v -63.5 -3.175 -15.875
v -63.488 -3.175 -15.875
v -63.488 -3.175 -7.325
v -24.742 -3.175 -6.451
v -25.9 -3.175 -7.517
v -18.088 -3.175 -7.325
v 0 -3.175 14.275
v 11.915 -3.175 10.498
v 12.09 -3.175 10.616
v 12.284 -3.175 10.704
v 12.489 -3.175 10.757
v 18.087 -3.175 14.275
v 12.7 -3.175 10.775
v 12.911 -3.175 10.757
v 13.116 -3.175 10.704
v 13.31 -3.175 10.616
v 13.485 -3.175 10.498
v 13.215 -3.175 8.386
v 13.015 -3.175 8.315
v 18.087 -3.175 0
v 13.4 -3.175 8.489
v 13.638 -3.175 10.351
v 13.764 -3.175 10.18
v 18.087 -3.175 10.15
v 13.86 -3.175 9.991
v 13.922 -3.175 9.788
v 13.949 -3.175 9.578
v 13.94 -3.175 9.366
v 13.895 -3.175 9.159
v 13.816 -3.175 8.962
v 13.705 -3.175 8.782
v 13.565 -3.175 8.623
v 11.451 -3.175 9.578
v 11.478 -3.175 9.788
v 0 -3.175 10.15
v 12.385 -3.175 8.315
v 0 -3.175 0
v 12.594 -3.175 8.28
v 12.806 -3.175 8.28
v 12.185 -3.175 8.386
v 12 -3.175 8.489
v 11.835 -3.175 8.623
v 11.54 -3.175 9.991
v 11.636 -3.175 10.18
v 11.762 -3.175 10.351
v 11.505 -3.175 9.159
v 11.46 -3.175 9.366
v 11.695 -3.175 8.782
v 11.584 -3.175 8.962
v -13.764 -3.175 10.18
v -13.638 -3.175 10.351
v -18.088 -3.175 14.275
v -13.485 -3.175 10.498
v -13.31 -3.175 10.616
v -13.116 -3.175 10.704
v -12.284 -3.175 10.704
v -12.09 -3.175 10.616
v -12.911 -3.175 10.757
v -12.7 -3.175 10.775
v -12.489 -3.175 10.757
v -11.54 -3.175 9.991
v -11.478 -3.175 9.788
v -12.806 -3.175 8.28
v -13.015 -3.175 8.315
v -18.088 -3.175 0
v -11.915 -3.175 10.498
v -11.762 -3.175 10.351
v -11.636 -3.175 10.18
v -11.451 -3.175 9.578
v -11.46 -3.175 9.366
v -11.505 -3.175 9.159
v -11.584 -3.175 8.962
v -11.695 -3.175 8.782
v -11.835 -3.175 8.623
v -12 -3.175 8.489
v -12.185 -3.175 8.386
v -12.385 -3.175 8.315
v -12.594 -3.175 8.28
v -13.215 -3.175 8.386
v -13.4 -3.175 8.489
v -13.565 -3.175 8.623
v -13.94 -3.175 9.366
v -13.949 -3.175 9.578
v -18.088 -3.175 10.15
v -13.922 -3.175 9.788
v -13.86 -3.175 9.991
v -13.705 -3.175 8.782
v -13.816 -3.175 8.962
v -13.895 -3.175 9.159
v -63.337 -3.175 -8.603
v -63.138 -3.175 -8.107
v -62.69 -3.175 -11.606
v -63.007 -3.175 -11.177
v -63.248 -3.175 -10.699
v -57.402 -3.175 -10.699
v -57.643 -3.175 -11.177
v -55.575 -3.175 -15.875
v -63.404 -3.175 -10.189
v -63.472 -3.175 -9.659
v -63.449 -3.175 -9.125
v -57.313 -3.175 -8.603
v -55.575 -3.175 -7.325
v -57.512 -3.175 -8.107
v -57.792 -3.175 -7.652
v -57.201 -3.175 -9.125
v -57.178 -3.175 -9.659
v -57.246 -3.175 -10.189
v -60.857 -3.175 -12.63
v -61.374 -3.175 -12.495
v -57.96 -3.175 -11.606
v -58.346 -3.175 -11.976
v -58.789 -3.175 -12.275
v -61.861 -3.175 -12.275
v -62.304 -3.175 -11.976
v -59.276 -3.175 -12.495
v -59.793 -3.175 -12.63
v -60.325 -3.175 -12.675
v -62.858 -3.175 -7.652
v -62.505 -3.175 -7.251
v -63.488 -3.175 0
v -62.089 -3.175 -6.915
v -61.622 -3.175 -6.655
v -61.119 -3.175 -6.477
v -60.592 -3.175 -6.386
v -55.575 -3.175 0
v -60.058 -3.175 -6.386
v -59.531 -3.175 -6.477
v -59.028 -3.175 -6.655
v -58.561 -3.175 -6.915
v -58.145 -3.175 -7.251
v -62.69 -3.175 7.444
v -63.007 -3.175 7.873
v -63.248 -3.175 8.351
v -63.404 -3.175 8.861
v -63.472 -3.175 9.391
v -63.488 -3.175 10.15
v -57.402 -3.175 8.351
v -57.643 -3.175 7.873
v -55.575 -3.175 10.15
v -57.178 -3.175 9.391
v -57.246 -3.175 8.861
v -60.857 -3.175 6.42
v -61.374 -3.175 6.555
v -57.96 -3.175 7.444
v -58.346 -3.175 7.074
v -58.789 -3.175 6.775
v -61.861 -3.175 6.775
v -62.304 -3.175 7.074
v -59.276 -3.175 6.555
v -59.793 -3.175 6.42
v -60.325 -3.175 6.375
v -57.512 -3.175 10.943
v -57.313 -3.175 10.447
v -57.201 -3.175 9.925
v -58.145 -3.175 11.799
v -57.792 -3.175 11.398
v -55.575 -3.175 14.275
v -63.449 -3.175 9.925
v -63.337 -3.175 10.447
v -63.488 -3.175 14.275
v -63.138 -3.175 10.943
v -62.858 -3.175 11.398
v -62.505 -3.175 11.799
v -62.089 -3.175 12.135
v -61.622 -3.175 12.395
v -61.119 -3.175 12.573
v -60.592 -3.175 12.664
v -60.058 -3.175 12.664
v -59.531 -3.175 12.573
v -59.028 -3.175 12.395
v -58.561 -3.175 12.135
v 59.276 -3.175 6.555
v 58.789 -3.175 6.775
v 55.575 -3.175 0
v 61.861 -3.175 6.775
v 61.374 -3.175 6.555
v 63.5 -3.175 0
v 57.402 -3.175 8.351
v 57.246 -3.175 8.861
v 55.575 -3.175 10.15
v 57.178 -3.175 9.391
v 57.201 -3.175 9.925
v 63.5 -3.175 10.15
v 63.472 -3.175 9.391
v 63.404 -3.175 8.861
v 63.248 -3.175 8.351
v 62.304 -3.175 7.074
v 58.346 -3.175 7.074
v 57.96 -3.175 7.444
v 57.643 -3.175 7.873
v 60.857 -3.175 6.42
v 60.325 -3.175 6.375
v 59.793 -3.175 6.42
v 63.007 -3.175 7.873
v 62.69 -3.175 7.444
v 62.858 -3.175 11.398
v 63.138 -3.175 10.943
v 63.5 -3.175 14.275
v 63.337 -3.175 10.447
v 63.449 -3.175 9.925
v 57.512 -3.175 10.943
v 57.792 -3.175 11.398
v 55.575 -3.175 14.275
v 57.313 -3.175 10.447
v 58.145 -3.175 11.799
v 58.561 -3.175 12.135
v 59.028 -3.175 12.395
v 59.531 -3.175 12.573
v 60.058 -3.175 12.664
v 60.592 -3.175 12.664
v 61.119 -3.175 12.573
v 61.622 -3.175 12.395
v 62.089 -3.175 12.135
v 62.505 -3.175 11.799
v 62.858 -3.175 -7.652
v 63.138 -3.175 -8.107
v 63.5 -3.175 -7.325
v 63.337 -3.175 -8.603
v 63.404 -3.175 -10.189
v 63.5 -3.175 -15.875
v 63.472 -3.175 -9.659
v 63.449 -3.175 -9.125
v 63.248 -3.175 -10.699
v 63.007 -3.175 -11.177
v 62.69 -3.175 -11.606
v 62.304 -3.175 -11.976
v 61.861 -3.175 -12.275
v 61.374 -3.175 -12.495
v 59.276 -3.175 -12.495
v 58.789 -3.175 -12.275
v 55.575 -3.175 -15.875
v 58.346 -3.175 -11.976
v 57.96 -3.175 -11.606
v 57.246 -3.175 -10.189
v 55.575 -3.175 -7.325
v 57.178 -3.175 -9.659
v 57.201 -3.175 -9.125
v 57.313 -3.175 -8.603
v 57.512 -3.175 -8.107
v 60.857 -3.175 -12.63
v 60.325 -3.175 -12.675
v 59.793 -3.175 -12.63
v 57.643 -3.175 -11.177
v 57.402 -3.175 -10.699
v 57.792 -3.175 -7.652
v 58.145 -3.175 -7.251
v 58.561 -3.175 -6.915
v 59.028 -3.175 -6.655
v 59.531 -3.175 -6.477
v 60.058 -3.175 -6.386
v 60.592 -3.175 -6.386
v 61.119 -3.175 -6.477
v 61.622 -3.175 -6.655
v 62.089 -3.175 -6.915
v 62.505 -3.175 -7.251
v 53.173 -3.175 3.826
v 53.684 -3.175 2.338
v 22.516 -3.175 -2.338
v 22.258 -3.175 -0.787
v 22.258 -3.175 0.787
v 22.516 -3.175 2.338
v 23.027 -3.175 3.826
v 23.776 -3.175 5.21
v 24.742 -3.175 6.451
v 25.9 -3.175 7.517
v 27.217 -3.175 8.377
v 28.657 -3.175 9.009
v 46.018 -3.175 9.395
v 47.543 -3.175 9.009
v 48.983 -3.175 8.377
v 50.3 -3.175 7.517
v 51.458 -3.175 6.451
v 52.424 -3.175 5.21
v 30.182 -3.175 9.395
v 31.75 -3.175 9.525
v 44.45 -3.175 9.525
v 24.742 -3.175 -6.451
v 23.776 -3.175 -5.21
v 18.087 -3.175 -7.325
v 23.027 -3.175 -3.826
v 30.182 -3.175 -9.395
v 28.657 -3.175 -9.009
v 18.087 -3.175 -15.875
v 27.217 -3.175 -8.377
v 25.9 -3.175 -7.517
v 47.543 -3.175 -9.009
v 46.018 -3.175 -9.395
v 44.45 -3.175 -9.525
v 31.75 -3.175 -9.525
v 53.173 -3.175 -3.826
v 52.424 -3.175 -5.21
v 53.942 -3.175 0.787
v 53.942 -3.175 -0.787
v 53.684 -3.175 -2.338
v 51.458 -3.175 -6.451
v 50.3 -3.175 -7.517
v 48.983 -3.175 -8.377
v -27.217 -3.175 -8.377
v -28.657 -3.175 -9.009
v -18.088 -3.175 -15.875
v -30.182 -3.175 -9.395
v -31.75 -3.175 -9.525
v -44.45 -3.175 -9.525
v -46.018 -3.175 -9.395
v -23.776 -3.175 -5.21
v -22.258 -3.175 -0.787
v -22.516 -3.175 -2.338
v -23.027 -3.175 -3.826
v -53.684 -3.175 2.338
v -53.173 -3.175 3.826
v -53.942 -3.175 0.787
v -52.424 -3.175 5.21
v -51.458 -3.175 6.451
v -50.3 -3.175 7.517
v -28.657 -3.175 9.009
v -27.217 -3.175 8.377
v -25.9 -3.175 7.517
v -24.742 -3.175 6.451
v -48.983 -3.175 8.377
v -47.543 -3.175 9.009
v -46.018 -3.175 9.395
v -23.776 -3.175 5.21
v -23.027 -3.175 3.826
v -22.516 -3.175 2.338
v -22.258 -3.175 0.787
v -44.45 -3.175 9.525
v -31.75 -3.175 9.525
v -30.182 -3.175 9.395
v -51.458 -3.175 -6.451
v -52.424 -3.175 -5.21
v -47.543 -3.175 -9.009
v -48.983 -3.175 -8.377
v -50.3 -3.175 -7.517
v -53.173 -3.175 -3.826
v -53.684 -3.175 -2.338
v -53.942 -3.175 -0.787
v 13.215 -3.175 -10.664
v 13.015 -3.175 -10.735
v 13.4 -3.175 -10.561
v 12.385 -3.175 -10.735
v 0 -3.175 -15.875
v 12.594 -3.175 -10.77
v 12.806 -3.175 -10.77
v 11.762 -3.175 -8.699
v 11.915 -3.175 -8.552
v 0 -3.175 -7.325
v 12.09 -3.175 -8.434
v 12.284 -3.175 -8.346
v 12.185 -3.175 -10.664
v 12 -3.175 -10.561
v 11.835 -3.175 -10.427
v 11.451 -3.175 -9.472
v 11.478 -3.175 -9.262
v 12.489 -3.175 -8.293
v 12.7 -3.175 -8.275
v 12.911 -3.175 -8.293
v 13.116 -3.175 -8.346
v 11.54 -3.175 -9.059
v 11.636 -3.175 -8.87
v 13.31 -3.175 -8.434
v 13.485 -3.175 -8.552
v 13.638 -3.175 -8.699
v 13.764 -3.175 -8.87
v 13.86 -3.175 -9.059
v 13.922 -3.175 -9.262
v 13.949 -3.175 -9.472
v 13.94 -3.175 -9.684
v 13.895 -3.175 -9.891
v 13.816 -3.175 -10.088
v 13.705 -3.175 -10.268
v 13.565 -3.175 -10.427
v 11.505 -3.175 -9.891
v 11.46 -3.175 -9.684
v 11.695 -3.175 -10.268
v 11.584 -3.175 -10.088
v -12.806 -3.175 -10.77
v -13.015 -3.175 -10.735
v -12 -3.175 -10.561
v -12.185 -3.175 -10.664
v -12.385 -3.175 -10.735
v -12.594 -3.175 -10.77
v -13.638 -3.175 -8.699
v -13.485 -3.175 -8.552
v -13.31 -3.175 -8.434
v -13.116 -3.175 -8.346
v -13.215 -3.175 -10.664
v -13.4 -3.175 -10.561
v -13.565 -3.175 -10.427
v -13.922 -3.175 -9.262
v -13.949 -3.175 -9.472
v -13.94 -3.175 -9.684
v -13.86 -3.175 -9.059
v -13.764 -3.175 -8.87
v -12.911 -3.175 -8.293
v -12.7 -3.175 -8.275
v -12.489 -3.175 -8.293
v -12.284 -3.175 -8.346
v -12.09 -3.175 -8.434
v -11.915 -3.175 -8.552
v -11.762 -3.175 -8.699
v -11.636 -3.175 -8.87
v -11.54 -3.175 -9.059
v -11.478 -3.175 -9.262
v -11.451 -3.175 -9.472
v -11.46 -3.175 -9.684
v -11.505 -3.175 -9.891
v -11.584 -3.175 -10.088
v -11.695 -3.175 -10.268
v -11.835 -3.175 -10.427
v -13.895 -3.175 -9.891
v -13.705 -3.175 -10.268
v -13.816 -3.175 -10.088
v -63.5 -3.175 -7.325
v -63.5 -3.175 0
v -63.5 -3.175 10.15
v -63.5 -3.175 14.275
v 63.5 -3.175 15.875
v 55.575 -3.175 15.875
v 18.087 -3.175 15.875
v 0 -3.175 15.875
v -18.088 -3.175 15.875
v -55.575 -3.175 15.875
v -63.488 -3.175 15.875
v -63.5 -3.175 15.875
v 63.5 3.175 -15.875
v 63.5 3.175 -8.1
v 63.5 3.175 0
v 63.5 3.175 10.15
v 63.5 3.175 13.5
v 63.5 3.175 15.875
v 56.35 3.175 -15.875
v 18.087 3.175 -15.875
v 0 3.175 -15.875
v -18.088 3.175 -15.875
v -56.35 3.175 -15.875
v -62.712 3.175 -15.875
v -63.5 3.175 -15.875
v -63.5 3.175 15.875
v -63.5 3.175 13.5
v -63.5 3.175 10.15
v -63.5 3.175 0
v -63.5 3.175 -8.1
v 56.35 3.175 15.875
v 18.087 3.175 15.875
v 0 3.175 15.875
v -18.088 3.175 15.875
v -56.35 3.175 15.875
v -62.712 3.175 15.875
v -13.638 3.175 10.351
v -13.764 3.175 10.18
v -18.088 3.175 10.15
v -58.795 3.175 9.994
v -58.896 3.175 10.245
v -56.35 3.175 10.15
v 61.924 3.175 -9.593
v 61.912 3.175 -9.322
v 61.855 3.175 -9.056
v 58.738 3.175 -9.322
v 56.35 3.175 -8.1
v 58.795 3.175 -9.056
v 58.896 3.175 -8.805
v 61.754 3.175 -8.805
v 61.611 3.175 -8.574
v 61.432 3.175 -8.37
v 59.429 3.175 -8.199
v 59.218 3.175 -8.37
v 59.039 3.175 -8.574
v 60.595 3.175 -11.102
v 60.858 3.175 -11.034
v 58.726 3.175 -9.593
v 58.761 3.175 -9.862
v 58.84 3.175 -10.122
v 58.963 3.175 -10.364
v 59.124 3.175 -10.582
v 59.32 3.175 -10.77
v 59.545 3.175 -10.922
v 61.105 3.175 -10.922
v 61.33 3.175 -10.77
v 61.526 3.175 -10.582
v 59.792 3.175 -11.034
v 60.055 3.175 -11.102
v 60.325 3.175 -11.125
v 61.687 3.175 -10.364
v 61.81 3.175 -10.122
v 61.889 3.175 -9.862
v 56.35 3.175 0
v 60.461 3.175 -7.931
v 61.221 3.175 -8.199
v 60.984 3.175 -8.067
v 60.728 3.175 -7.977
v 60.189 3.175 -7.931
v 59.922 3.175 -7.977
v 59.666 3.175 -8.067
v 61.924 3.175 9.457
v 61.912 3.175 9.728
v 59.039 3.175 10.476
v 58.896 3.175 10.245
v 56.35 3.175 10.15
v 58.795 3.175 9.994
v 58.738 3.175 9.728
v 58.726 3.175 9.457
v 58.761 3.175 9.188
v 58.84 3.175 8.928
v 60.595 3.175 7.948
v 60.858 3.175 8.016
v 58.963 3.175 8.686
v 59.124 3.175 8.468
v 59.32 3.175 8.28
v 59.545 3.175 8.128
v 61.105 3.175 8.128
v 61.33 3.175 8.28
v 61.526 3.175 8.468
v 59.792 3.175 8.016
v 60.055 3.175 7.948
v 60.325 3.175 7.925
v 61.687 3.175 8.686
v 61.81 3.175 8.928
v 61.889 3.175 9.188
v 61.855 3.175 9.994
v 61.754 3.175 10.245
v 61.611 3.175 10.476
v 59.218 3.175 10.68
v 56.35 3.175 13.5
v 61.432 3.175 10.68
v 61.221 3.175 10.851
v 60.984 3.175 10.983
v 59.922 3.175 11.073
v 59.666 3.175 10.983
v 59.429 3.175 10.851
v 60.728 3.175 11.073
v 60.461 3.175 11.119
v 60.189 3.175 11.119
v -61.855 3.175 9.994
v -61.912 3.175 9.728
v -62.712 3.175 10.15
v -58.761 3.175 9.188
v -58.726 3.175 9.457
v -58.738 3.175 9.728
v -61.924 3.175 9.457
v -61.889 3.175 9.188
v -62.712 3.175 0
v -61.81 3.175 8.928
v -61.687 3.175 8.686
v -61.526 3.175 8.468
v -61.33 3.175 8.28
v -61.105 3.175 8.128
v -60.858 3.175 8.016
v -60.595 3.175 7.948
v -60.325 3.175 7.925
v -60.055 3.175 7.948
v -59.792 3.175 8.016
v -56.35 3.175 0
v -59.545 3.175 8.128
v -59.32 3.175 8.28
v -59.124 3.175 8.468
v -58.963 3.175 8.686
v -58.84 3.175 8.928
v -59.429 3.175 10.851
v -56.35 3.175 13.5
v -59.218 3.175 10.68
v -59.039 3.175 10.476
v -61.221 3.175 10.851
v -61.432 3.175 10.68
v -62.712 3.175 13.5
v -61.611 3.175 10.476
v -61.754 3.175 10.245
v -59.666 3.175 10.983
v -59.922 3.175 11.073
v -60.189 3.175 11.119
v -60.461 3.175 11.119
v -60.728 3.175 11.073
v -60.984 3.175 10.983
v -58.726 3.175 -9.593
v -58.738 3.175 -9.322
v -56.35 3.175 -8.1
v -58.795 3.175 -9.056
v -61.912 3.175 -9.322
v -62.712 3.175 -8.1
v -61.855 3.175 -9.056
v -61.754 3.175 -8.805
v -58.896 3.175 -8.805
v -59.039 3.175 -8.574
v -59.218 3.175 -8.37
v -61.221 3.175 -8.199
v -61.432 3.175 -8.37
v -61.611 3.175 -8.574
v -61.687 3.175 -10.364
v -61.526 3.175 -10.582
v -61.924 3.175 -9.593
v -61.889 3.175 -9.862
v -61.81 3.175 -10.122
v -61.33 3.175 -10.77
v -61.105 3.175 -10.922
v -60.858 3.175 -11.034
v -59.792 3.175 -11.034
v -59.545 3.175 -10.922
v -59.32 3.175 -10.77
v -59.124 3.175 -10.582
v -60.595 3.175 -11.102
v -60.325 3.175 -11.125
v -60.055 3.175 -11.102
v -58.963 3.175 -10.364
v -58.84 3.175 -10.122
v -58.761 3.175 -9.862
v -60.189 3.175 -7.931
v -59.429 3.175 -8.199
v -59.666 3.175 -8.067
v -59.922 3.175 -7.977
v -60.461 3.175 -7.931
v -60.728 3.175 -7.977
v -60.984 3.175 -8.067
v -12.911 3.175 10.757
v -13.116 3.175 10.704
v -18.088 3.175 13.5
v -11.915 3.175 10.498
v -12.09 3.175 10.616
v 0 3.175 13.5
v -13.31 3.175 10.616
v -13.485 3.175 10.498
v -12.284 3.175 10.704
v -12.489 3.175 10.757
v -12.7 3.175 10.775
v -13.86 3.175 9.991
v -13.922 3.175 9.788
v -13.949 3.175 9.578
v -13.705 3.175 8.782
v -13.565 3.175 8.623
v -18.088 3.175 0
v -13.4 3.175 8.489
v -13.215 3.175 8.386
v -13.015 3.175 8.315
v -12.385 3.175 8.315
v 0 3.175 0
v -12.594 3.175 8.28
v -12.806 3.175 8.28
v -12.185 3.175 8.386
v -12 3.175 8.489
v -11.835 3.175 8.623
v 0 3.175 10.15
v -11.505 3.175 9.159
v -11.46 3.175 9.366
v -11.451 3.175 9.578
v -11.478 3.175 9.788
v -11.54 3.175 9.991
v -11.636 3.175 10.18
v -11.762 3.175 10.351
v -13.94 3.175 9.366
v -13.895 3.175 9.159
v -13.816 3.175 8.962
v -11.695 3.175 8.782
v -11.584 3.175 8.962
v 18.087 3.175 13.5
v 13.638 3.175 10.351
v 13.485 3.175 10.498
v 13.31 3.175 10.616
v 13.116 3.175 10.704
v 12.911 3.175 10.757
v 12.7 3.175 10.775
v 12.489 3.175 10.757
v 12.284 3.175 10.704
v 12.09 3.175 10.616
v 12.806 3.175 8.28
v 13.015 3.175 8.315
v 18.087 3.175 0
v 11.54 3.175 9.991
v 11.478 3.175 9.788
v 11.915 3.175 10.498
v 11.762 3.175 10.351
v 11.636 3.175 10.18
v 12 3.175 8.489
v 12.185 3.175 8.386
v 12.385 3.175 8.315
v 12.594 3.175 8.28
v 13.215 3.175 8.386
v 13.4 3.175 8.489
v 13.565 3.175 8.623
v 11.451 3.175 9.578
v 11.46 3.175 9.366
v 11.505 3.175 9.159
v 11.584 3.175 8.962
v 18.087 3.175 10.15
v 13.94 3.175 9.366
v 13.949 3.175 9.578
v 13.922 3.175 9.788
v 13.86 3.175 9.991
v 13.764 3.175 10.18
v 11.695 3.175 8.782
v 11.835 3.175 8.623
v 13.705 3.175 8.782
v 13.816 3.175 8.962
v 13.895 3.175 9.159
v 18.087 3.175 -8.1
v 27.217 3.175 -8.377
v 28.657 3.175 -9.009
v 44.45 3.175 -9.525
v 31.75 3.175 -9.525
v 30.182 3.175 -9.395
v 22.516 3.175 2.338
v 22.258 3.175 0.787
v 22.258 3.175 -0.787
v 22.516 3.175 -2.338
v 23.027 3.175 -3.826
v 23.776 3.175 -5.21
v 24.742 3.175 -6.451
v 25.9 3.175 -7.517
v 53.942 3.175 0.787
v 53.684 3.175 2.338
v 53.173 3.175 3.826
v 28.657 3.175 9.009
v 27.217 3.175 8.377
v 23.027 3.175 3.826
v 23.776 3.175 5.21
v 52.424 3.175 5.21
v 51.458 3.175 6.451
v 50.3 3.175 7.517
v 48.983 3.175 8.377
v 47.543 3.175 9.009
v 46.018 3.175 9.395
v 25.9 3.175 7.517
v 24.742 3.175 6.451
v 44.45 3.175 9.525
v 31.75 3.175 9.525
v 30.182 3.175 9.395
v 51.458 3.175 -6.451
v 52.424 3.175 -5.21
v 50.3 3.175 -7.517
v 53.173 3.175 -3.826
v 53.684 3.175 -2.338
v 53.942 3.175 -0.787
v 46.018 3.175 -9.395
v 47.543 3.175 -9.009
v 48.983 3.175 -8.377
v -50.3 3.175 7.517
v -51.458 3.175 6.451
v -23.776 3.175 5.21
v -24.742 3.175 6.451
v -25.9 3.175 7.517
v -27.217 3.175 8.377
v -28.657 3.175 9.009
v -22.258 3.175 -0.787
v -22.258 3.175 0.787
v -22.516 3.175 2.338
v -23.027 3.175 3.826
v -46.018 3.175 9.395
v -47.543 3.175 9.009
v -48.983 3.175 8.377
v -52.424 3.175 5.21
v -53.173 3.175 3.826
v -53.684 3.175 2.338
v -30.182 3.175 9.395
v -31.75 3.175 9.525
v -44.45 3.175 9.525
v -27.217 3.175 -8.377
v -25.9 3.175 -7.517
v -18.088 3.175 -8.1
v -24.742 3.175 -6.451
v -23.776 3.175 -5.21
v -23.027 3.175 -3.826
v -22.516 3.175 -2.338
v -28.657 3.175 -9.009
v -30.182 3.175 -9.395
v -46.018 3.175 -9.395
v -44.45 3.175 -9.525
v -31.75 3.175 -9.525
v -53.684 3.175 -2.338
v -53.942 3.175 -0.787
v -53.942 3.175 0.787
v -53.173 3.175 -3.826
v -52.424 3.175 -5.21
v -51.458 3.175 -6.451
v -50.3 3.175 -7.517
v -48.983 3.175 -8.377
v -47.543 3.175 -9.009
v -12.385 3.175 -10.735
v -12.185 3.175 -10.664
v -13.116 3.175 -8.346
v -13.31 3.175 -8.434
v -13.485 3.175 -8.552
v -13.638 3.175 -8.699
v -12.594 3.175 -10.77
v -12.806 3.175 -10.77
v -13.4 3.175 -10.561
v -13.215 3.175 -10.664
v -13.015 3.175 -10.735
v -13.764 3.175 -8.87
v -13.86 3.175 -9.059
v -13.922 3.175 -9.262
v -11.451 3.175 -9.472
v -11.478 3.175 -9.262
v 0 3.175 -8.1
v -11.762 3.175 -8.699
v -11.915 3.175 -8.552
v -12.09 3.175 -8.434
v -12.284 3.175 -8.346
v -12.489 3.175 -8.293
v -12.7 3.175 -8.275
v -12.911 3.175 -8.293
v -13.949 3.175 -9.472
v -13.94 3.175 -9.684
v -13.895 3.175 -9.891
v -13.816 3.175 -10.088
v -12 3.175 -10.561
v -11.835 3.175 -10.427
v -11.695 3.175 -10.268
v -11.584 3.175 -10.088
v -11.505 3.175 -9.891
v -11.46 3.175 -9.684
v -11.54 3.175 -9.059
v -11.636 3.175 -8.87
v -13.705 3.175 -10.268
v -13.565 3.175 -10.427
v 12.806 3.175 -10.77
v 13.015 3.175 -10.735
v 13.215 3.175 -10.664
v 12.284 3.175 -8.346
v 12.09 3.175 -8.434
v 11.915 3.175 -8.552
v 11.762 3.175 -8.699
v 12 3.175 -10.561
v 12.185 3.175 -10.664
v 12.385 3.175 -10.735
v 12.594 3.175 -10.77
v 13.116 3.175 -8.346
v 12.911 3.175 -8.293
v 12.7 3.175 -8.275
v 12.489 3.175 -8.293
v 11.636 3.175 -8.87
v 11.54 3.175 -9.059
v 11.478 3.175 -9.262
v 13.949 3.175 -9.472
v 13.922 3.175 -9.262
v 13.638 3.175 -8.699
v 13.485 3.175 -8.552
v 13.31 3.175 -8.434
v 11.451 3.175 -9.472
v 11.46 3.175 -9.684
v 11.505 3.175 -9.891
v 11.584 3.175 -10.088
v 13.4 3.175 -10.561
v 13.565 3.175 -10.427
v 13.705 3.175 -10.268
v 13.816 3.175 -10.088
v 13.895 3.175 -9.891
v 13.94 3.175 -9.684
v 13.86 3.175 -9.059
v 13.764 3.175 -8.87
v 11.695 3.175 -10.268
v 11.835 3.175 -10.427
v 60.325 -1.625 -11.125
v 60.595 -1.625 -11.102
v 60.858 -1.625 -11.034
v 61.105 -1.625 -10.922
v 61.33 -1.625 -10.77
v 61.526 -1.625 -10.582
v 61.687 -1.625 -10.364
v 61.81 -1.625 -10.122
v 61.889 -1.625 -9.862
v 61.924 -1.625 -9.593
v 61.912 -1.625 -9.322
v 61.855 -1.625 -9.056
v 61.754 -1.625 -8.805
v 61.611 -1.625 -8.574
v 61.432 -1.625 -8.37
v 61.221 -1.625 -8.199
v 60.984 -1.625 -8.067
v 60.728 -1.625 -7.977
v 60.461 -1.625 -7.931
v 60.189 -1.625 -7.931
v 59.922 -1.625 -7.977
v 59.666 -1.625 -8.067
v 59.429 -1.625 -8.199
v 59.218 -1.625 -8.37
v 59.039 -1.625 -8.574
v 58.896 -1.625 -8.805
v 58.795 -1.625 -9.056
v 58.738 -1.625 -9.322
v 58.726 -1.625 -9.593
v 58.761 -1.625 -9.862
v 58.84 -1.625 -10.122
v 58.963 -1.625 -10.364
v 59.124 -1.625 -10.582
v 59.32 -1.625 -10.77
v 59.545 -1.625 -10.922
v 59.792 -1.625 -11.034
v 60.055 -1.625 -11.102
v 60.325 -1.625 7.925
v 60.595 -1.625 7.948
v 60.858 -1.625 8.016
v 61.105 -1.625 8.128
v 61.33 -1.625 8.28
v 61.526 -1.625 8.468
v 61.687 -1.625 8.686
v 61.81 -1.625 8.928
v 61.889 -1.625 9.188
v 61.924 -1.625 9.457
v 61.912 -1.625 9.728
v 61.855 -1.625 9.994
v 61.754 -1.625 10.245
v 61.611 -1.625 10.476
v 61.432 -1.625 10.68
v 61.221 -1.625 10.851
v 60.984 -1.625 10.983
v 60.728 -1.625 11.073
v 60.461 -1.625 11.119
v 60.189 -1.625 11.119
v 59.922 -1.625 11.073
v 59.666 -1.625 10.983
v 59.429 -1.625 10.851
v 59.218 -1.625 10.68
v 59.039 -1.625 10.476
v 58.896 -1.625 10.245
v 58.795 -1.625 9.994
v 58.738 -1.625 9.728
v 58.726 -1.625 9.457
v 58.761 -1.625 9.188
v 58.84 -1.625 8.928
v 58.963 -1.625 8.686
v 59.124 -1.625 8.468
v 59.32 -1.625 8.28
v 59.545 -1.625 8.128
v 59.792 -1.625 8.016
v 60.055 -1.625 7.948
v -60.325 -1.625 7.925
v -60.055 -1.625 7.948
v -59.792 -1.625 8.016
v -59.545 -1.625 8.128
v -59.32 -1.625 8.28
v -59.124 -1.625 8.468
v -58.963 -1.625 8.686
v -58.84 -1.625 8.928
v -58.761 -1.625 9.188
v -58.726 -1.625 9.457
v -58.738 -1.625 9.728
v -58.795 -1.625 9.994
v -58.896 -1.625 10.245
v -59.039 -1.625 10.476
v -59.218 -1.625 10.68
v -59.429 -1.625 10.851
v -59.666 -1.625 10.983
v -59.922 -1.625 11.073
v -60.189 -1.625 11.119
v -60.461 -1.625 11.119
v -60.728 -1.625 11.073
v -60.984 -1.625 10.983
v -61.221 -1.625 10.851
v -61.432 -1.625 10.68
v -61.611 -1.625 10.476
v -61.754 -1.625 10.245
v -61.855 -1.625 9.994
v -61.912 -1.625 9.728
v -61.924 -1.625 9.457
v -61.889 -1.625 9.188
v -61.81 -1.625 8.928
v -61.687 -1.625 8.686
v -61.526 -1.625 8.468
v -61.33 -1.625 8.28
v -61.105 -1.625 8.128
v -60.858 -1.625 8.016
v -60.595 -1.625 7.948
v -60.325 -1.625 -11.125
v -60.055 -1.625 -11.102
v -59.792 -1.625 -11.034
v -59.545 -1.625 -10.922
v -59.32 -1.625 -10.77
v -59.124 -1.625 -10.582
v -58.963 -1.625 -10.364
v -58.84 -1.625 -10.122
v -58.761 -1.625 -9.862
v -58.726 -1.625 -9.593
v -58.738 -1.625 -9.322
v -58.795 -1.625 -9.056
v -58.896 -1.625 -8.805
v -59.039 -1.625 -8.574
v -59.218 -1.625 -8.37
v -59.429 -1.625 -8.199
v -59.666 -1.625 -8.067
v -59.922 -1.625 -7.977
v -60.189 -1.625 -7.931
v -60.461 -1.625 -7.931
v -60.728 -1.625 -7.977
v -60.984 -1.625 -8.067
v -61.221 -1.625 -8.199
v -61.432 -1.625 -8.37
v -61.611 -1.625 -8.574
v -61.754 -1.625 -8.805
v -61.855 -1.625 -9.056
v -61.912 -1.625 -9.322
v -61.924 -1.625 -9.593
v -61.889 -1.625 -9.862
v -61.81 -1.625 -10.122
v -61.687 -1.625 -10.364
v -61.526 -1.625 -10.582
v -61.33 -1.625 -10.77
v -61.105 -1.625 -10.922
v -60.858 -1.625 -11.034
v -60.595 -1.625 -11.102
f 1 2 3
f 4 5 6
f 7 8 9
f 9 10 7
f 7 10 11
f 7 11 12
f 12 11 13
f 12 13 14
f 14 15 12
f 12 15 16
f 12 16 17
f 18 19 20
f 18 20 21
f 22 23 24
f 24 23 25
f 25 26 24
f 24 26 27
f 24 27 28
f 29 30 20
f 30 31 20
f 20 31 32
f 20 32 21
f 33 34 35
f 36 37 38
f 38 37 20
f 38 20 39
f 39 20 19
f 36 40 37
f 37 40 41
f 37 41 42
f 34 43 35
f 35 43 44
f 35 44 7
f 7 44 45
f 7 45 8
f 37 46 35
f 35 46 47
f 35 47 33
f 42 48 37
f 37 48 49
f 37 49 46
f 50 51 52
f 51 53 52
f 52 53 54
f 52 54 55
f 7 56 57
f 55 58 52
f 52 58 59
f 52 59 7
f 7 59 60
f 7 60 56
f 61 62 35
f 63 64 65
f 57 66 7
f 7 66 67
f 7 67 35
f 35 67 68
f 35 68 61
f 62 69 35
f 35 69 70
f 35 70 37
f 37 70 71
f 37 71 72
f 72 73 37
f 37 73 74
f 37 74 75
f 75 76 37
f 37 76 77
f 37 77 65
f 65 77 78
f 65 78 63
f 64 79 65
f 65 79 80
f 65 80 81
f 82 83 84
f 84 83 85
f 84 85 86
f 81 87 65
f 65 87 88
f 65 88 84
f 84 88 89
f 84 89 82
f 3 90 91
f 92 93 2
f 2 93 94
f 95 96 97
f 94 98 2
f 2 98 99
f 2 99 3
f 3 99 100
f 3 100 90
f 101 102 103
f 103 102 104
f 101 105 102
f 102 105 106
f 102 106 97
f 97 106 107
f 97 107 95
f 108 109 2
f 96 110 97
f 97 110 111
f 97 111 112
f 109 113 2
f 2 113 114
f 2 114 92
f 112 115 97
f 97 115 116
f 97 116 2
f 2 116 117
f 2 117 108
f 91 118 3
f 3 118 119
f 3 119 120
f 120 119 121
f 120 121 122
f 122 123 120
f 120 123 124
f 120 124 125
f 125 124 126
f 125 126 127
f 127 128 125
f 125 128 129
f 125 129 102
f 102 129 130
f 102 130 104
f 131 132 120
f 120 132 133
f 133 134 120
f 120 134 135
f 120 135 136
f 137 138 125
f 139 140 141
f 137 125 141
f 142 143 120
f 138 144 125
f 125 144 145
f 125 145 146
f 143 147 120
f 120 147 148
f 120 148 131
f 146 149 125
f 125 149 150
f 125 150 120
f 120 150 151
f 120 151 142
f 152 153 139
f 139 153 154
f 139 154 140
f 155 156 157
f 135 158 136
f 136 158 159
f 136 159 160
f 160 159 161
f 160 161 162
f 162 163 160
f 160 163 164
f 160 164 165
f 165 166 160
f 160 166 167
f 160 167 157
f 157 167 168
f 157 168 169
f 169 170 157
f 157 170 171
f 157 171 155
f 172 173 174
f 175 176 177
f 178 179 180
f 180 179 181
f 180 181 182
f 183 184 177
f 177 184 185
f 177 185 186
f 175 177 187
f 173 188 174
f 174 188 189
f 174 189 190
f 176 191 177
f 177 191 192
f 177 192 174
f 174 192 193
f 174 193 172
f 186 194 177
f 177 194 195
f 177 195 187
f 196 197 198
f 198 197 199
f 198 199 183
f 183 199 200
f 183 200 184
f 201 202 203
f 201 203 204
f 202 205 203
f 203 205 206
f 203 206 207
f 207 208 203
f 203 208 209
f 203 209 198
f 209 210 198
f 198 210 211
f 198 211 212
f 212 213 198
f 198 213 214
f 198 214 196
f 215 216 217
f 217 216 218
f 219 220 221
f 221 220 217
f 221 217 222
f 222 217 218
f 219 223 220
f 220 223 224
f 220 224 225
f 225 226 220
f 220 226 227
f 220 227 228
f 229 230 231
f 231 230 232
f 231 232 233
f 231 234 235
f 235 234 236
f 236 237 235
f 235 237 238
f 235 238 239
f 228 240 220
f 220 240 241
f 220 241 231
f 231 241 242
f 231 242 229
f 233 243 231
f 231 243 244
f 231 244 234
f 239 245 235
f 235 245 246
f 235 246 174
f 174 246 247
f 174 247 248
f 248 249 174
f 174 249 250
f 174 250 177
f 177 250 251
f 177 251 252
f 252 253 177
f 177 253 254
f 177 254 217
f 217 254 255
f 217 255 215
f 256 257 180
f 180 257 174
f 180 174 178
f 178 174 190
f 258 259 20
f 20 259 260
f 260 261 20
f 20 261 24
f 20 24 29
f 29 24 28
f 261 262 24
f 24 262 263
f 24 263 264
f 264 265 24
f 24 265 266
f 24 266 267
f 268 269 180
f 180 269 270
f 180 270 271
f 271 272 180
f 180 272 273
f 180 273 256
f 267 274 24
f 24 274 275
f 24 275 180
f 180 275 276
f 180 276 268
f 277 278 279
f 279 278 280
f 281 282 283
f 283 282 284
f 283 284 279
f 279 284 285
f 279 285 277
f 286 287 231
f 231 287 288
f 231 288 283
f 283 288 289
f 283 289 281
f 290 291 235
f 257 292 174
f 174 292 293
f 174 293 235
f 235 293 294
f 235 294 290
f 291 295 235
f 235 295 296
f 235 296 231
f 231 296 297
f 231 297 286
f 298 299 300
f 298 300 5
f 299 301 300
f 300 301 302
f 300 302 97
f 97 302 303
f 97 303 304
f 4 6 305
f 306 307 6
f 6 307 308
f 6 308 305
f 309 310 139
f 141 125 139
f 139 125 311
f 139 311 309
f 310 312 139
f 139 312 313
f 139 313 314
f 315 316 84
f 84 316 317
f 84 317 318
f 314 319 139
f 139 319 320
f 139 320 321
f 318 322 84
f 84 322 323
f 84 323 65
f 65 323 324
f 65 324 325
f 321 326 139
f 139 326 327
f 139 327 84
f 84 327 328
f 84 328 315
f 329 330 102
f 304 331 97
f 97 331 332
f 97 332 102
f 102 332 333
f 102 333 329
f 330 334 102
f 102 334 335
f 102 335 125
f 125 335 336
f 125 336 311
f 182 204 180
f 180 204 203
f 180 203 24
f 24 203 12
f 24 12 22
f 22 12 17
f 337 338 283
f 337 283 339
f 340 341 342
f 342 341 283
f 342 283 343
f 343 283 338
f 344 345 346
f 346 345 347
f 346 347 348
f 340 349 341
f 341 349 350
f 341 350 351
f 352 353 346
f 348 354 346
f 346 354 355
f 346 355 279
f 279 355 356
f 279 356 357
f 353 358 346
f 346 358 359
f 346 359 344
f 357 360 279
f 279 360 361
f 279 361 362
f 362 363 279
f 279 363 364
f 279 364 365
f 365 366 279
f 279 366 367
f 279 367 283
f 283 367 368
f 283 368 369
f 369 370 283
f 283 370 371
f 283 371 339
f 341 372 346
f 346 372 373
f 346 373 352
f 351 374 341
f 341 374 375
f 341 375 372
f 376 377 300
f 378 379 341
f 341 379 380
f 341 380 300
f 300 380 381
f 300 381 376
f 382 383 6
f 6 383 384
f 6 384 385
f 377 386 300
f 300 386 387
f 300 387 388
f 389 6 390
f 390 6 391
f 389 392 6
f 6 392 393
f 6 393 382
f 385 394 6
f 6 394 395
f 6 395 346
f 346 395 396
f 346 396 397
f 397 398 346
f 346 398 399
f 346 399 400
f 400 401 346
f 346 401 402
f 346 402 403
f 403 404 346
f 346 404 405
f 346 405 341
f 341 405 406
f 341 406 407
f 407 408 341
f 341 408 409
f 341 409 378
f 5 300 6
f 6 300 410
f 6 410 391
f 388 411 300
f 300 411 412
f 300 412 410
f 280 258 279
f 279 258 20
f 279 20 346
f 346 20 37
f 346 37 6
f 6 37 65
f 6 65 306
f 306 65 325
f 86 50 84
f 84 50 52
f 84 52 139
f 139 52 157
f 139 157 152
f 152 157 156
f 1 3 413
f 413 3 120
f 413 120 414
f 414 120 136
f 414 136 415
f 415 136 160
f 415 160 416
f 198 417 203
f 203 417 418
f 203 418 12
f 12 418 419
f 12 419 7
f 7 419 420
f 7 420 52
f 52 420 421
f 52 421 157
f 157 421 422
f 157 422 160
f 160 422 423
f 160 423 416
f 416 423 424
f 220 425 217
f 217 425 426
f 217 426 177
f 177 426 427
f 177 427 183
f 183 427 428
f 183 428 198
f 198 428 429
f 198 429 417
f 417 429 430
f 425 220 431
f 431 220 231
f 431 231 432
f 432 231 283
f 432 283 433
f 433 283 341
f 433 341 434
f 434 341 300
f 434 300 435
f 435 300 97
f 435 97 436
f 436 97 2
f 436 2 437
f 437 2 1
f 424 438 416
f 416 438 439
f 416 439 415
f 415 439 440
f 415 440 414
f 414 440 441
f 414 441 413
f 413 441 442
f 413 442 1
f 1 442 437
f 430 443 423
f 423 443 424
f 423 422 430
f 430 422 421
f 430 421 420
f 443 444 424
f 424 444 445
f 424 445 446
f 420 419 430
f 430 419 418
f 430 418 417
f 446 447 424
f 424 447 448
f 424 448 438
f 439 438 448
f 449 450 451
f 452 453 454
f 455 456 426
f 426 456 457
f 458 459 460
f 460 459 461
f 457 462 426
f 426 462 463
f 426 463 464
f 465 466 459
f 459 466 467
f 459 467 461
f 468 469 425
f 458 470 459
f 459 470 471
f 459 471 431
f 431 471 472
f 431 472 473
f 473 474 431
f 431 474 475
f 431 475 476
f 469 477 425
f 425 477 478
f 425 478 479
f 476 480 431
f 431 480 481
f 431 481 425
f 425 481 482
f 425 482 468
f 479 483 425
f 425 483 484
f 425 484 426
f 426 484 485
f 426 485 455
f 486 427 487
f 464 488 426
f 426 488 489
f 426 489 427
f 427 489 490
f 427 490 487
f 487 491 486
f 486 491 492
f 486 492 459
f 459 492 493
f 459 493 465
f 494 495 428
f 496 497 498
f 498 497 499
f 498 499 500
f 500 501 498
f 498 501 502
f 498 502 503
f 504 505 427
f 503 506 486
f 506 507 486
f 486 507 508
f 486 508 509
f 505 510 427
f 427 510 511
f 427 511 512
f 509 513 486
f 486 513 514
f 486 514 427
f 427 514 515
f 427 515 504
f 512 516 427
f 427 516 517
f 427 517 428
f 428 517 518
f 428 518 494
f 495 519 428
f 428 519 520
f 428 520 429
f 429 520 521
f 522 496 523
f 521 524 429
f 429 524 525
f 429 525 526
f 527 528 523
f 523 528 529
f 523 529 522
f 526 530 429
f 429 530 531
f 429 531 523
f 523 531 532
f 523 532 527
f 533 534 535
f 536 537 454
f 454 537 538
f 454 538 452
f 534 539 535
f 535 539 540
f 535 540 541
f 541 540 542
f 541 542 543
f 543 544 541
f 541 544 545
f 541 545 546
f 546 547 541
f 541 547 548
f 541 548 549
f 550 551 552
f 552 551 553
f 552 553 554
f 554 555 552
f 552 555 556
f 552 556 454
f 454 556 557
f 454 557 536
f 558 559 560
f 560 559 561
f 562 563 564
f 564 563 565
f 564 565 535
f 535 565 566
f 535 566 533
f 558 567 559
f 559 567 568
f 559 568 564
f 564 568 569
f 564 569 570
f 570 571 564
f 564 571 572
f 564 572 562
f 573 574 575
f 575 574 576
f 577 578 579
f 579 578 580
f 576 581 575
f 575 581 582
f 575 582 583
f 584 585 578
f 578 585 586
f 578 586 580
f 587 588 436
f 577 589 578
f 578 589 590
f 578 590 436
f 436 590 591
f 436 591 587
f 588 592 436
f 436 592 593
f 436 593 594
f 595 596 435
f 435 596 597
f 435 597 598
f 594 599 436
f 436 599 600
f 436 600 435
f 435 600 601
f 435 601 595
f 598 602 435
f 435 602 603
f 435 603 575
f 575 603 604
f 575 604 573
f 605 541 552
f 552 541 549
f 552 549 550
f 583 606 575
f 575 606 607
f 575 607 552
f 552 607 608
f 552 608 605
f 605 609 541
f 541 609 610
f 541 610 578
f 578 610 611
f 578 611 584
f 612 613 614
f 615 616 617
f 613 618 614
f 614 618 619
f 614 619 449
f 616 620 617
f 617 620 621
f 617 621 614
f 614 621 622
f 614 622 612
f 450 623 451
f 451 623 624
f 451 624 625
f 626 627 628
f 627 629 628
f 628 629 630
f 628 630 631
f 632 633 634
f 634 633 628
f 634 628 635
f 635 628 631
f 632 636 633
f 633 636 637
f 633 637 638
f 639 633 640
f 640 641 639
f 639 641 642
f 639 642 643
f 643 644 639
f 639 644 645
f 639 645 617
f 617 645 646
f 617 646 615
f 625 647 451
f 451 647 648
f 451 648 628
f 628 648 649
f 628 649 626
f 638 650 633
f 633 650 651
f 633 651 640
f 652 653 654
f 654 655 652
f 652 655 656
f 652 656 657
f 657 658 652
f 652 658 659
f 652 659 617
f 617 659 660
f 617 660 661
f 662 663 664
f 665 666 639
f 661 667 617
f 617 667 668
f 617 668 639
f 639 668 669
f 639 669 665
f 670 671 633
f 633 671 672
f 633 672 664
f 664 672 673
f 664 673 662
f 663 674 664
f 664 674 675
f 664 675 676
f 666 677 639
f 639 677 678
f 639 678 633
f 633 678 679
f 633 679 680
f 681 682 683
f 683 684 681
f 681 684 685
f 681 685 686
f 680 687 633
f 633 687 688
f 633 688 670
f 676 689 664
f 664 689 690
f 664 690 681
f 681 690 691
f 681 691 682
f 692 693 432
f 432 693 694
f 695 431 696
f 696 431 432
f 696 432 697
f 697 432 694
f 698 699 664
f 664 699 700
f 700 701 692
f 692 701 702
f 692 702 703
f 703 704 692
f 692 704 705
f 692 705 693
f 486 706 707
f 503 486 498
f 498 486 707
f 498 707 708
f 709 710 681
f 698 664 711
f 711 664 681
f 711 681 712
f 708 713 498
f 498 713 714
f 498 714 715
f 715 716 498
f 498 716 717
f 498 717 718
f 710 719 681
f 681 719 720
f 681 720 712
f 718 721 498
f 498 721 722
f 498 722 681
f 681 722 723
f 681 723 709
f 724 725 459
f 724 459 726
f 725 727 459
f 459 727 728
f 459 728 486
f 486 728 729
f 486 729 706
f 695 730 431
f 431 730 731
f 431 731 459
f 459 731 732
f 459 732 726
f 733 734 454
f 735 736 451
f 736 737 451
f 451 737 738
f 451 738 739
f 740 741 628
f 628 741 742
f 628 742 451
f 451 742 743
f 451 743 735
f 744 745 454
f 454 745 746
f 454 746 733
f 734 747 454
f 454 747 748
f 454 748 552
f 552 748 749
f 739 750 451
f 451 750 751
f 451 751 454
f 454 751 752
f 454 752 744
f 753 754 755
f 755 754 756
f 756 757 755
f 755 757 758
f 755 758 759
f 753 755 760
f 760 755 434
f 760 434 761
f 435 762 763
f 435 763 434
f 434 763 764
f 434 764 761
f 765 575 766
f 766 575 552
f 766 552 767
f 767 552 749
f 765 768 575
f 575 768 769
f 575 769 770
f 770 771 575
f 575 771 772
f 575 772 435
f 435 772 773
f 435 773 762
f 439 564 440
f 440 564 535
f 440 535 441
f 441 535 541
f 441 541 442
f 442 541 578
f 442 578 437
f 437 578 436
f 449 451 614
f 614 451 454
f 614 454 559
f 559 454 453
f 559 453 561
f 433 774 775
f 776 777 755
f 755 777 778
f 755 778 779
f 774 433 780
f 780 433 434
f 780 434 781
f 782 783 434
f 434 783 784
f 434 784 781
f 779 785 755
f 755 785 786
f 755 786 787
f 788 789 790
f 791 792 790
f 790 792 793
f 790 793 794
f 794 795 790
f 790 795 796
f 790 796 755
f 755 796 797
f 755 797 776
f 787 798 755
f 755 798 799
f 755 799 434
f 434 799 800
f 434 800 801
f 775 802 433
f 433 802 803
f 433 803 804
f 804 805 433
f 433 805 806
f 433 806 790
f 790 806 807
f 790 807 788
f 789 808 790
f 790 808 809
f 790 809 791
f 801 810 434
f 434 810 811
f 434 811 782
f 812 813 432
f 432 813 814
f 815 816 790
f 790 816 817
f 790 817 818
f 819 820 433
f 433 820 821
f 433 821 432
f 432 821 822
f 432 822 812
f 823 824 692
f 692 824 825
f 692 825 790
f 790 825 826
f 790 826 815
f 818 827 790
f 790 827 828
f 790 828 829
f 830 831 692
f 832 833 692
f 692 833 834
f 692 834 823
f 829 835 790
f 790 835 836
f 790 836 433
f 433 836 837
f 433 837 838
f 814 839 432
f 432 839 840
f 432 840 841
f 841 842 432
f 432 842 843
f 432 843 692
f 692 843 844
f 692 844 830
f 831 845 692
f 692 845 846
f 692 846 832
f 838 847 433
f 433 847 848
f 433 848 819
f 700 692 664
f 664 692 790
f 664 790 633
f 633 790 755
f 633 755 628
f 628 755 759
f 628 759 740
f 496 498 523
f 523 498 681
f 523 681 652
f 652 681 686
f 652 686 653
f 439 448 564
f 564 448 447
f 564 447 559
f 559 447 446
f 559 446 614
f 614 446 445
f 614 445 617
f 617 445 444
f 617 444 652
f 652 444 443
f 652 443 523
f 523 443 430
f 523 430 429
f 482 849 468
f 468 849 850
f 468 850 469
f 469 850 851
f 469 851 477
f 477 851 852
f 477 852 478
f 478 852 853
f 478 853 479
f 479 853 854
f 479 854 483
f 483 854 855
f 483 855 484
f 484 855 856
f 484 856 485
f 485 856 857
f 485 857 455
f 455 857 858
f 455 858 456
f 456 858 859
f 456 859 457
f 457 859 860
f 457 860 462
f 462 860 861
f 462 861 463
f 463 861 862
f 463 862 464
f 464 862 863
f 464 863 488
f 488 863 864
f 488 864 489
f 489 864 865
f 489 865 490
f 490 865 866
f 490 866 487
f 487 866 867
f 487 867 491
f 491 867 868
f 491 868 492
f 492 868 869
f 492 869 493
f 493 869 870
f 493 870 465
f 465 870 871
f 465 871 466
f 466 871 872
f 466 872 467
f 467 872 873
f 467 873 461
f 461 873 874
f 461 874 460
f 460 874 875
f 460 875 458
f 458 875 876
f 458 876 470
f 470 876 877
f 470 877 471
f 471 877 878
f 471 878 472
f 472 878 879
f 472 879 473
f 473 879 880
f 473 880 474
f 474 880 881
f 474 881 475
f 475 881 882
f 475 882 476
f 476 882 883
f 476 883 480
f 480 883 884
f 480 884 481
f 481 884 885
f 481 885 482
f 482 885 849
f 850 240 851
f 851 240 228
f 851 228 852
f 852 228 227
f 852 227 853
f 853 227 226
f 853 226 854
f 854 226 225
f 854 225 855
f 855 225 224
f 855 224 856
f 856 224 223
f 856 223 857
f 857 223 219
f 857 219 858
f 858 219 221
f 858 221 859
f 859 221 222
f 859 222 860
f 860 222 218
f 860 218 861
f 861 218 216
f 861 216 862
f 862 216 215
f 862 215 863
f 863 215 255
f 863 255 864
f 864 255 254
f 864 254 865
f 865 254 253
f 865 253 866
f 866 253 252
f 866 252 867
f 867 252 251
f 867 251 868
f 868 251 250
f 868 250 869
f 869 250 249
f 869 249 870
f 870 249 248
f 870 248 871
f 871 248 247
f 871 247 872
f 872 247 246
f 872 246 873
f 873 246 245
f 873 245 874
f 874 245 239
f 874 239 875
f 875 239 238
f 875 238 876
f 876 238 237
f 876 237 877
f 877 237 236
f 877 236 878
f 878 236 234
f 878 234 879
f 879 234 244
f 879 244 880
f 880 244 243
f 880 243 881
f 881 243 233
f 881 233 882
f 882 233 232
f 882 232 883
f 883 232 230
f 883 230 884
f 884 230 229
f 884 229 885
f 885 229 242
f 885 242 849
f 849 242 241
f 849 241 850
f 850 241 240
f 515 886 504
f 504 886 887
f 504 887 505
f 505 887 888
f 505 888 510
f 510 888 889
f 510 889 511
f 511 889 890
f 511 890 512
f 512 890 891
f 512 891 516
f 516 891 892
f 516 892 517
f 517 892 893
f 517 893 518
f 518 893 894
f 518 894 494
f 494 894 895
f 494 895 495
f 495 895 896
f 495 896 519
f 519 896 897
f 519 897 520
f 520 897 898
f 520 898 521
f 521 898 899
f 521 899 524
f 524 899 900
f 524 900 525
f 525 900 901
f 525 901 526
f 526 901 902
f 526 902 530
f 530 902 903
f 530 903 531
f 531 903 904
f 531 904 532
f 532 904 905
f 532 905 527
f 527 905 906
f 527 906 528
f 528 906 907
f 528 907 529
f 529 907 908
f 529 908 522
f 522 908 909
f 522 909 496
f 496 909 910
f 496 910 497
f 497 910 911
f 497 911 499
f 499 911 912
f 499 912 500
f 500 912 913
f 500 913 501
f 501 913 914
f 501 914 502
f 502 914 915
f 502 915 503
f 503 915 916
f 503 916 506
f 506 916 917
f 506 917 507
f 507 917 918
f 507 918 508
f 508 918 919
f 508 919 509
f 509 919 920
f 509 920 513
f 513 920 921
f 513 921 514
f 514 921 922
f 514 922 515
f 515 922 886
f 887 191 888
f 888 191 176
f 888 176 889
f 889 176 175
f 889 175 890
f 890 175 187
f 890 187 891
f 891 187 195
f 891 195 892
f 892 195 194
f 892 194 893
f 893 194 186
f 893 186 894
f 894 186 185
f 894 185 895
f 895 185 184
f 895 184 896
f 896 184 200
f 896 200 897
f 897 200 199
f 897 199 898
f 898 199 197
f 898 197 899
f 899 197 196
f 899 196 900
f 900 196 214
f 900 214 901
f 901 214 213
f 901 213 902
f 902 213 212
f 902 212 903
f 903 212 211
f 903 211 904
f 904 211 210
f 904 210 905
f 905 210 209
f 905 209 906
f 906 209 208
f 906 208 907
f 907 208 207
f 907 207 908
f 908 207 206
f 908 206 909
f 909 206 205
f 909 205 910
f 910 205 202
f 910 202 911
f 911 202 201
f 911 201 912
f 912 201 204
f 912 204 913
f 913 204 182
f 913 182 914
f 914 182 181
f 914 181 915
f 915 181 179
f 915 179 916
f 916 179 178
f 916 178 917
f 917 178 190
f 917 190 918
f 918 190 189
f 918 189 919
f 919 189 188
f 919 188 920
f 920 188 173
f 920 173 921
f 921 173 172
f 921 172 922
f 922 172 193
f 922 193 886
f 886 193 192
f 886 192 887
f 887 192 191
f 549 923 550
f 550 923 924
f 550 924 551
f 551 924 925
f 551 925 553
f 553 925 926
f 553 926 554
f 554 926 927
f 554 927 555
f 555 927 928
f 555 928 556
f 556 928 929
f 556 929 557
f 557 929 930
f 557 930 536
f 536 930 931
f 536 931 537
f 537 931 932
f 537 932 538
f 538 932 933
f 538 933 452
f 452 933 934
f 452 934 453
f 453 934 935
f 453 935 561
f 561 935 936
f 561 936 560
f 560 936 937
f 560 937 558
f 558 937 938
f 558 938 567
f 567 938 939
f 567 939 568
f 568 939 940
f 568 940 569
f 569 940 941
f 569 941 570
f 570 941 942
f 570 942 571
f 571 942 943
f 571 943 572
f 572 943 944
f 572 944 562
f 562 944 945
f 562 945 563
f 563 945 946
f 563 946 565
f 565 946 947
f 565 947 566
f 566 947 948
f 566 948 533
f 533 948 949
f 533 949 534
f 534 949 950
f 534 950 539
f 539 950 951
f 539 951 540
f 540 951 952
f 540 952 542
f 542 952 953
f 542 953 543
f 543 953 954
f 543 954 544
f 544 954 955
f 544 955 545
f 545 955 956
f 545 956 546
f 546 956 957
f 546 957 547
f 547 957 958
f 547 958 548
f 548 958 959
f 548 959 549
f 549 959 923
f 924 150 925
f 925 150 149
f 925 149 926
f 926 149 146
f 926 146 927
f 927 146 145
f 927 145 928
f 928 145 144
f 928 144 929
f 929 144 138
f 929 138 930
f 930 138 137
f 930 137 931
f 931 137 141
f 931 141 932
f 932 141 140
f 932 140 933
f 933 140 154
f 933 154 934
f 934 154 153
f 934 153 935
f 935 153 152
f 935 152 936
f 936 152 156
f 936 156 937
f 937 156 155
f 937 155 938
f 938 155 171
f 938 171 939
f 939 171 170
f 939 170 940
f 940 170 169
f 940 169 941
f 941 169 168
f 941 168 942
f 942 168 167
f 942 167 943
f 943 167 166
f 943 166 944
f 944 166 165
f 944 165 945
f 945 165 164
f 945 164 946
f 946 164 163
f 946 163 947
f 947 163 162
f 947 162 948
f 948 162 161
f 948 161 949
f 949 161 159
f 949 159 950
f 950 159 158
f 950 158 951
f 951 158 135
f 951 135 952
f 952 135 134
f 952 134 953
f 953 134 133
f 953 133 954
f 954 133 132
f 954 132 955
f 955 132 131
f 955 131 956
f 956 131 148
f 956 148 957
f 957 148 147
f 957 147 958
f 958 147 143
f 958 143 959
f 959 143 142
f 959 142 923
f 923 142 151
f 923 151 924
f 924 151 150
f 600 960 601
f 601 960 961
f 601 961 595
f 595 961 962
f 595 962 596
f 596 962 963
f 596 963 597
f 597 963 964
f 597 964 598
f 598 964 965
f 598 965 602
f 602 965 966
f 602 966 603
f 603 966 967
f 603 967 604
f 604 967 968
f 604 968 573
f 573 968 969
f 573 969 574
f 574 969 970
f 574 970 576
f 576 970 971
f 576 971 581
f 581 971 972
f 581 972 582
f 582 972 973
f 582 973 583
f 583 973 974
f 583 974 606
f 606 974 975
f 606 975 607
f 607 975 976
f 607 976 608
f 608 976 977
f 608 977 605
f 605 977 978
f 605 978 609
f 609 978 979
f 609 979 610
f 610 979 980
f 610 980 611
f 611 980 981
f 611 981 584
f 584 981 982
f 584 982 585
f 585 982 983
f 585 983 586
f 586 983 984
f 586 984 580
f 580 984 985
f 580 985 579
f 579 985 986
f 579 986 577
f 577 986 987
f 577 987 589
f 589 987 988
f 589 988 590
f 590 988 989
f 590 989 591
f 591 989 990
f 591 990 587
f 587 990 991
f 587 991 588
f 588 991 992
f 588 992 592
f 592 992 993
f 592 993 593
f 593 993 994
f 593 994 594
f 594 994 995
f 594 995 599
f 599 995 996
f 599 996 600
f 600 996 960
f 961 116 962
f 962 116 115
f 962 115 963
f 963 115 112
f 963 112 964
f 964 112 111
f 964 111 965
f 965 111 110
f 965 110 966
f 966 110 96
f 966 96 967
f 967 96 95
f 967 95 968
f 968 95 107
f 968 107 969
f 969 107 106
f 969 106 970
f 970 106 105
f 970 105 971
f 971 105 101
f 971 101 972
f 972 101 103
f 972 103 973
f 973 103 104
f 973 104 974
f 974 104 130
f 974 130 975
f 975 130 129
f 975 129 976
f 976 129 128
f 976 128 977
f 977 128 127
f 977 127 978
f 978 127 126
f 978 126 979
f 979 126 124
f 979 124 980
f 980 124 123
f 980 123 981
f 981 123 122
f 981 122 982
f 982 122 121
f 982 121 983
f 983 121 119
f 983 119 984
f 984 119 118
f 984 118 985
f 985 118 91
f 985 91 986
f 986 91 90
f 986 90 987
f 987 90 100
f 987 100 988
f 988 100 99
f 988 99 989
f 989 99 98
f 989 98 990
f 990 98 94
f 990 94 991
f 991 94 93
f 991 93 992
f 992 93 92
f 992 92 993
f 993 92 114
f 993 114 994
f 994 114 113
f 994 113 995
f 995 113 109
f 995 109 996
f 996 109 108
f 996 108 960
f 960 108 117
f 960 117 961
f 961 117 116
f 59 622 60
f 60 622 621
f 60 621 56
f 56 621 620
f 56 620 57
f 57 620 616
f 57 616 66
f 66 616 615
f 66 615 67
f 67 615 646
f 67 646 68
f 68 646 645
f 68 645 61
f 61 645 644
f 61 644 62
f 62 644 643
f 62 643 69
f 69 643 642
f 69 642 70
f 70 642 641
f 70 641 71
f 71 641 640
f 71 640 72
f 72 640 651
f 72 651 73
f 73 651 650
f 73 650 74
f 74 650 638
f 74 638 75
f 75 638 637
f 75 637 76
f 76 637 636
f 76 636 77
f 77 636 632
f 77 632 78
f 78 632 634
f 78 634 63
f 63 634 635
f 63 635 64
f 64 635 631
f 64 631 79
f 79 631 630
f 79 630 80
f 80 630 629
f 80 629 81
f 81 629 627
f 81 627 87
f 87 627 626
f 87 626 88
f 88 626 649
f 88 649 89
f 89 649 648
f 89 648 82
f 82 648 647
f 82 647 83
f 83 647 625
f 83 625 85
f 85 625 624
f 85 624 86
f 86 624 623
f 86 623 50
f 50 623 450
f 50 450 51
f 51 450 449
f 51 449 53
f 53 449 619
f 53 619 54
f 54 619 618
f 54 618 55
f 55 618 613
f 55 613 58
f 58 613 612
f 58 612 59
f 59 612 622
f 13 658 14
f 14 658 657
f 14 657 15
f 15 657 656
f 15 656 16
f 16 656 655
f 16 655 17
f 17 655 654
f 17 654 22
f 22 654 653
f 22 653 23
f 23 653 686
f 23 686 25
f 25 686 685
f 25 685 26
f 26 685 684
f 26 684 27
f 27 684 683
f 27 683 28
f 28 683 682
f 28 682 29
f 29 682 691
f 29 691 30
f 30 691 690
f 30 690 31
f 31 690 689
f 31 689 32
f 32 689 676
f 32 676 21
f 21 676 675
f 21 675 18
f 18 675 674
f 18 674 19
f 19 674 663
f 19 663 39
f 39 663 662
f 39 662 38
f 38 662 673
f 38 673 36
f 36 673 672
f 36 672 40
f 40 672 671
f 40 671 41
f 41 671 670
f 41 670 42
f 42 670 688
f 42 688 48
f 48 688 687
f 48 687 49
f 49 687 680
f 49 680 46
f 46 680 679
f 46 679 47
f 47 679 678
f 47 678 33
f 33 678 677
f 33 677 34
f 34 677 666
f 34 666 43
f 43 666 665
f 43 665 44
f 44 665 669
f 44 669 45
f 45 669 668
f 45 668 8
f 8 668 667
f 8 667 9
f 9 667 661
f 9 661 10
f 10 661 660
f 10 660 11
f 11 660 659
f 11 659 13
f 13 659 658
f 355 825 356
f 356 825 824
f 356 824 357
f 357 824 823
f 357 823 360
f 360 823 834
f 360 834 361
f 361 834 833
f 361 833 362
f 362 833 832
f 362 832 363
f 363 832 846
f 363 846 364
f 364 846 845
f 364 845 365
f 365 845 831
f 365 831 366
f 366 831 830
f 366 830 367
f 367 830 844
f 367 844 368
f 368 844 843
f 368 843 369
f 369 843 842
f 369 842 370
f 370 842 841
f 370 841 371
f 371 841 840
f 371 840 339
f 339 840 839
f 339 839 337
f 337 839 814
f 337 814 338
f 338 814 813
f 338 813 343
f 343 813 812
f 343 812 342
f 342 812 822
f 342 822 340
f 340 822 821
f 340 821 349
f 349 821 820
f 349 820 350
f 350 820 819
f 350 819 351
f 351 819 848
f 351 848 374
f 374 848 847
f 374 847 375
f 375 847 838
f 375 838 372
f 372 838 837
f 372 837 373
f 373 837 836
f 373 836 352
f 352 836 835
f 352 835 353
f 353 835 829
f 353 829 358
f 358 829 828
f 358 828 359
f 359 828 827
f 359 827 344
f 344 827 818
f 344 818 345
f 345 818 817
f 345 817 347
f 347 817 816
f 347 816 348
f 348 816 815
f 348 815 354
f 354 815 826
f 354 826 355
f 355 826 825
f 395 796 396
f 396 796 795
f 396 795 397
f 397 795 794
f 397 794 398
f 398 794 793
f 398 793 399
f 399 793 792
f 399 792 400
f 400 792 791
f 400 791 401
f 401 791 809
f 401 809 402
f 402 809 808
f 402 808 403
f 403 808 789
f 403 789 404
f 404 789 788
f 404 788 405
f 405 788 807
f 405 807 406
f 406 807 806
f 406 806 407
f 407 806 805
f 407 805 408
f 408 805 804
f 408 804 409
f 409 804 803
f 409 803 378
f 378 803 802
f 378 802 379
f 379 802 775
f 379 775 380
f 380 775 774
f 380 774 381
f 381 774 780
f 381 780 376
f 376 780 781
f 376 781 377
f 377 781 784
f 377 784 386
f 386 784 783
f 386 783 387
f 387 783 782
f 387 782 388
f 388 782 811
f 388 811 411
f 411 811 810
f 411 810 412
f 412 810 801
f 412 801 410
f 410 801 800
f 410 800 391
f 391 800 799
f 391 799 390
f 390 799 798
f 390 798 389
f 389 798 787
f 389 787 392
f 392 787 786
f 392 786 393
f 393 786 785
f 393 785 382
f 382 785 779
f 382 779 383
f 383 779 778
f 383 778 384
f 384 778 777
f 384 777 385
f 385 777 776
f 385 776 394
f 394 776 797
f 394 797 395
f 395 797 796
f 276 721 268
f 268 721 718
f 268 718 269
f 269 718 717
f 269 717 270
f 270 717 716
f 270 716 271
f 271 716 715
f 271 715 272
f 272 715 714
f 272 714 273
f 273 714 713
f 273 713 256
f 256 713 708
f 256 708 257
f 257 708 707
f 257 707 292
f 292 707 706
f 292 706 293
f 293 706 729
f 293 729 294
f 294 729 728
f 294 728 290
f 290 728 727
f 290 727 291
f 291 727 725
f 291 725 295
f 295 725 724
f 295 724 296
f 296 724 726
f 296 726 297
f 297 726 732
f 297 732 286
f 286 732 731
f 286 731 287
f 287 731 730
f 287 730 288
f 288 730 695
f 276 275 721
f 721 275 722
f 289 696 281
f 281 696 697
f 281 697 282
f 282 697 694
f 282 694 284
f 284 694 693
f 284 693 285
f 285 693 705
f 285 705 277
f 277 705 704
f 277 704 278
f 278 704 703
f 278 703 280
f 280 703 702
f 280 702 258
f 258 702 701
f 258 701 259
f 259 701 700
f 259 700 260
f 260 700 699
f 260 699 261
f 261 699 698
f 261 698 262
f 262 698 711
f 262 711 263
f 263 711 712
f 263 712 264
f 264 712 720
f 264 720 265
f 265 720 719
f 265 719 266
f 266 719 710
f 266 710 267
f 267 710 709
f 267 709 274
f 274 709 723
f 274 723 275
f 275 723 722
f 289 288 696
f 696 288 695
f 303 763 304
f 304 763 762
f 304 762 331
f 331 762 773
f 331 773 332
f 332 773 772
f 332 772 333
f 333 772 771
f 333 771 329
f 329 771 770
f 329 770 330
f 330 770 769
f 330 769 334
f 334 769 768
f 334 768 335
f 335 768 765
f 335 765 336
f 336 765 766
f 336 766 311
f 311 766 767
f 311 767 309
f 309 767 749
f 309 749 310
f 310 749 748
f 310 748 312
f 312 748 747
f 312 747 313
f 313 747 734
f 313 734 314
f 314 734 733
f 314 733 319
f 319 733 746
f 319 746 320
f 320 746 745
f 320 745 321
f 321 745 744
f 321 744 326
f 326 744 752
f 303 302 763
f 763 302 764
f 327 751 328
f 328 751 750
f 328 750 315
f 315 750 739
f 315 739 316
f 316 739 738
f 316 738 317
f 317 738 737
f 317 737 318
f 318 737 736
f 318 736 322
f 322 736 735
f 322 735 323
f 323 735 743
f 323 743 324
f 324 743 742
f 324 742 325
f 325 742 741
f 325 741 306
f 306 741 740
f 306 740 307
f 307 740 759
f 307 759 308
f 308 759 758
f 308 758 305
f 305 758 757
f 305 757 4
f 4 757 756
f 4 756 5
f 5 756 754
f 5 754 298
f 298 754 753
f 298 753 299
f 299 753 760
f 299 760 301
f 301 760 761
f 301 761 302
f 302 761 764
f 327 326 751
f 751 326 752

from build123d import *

# Parameters (mm, degrees)
SKETCH1_W                                       = 127
SKETCH1_H                                       = 31.75
BOSS_EXTRUDE1_DEPTH                             = 3.175
CSK_FOR_M3_FLAT_HEAD_MACHINE_SCREW1_D           = 3.2
CSK_FOR_M3_FLAT_HEAD_MACHINE_SCREW1_DEPTH       = 12.7
CSK_FOR_M3_FLAT_HEAD_MACHINE_SCREW1_CSINK_D     = 6.3
CSK_FOR_M3_FLAT_HEAD_MACHINE_SCREW1_CSINK_ANGLE = 90
CSK_FOR_M3_FLAT_HEAD_MACHINE_SCREW1_TIP         = 0.96137699
M3X0_5_TAPPED_HOLE1_D                           = 2.5
CUT_EXTRUDE1_DEPTH                              = 66.761600688


with BuildPart() as part:
    # Sketch1 → Boss-Extrude1 (new, symmetric)
    with BuildSketch(Plane(origin=(0, 0, 0), x_dir=(1, 0, 0), z_dir=(0, 1, 0))):
        Rectangle(SKETCH1_W, SKETCH1_H)
    extrude(amount=BOSS_EXTRUDE1_DEPTH, both=True)

    # CSK for M3 Flat Head Machine Screw1
    with Locations(Plane(origin=(0, -3.175, 0), x_dir=(-1, 0, 0), z_dir=(0, -1, 0))):
        with Locations((60.325, 9.525), (60.325, -9.525), (-60.325, -9.525), (-60.325, 9.525)):
            CounterSinkHole(CSK_FOR_M3_FLAT_HEAD_MACHINE_SCREW1_D / 2, CSK_FOR_M3_FLAT_HEAD_MACHINE_SCREW1_CSINK_D / 2, depth=CSK_FOR_M3_FLAT_HEAD_MACHINE_SCREW1_DEPTH, counter_sink_angle=CSK_FOR_M3_FLAT_HEAD_MACHINE_SCREW1_CSINK_ANGLE)
            with Locations((0, 0, -(CSK_FOR_M3_FLAT_HEAD_MACHINE_SCREW1_DEPTH + CSK_FOR_M3_FLAT_HEAD_MACHINE_SCREW1_TIP / 2))):  # 118° drill point
                Cone(0, CSK_FOR_M3_FLAT_HEAD_MACHINE_SCREW1_D / 2, CSK_FOR_M3_FLAT_HEAD_MACHINE_SCREW1_TIP, mode=Mode.SUBTRACT)

    # M3x0.5 Tapped Hole1 (through all)
    with Locations(Plane(origin=(0, 3.175, 0), x_dir=(1, 0, 0), z_dir=(0, 1, 0))):
        with Locations((-12.7, 9.525), (12.7, 9.525), (12.7, -9.525), (-12.7, -9.525)):
            Hole(M3X0_5_TAPPED_HOLE1_D / 2)

    # Sketch10 → Cut-Extrude1 (cut, through all)
    with BuildSketch(Plane(origin=(0, 3.175, 0), x_dir=(1, 0, 0), z_dir=(0, 1, 0))):
        with BuildLine():
            Line((-44.45, 9.525), (-31.75, 9.525))
            ThreePointArc((-31.75, 9.525), (-22.225, 0), (-31.75, -9.525))
            Line((-31.75, -9.525), (-44.45, -9.525))
            ThreePointArc((-44.45, -9.525), (-53.975, 0), (-44.45, 9.525))
        make_face()
        with BuildLine():
            Line((44.45, -9.525), (31.75, -9.525))
            ThreePointArc((31.75, -9.525), (22.225, 0), (31.75, 9.525))
            Line((31.75, 9.525), (44.45, 9.525))
            ThreePointArc((44.45, 9.525), (53.975, 0), (44.45, -9.525))
        make_face()
    extrude(amount=-CUT_EXTRUDE1_DEPTH, mode=Mode.SUBTRACT)


solid = part.part
